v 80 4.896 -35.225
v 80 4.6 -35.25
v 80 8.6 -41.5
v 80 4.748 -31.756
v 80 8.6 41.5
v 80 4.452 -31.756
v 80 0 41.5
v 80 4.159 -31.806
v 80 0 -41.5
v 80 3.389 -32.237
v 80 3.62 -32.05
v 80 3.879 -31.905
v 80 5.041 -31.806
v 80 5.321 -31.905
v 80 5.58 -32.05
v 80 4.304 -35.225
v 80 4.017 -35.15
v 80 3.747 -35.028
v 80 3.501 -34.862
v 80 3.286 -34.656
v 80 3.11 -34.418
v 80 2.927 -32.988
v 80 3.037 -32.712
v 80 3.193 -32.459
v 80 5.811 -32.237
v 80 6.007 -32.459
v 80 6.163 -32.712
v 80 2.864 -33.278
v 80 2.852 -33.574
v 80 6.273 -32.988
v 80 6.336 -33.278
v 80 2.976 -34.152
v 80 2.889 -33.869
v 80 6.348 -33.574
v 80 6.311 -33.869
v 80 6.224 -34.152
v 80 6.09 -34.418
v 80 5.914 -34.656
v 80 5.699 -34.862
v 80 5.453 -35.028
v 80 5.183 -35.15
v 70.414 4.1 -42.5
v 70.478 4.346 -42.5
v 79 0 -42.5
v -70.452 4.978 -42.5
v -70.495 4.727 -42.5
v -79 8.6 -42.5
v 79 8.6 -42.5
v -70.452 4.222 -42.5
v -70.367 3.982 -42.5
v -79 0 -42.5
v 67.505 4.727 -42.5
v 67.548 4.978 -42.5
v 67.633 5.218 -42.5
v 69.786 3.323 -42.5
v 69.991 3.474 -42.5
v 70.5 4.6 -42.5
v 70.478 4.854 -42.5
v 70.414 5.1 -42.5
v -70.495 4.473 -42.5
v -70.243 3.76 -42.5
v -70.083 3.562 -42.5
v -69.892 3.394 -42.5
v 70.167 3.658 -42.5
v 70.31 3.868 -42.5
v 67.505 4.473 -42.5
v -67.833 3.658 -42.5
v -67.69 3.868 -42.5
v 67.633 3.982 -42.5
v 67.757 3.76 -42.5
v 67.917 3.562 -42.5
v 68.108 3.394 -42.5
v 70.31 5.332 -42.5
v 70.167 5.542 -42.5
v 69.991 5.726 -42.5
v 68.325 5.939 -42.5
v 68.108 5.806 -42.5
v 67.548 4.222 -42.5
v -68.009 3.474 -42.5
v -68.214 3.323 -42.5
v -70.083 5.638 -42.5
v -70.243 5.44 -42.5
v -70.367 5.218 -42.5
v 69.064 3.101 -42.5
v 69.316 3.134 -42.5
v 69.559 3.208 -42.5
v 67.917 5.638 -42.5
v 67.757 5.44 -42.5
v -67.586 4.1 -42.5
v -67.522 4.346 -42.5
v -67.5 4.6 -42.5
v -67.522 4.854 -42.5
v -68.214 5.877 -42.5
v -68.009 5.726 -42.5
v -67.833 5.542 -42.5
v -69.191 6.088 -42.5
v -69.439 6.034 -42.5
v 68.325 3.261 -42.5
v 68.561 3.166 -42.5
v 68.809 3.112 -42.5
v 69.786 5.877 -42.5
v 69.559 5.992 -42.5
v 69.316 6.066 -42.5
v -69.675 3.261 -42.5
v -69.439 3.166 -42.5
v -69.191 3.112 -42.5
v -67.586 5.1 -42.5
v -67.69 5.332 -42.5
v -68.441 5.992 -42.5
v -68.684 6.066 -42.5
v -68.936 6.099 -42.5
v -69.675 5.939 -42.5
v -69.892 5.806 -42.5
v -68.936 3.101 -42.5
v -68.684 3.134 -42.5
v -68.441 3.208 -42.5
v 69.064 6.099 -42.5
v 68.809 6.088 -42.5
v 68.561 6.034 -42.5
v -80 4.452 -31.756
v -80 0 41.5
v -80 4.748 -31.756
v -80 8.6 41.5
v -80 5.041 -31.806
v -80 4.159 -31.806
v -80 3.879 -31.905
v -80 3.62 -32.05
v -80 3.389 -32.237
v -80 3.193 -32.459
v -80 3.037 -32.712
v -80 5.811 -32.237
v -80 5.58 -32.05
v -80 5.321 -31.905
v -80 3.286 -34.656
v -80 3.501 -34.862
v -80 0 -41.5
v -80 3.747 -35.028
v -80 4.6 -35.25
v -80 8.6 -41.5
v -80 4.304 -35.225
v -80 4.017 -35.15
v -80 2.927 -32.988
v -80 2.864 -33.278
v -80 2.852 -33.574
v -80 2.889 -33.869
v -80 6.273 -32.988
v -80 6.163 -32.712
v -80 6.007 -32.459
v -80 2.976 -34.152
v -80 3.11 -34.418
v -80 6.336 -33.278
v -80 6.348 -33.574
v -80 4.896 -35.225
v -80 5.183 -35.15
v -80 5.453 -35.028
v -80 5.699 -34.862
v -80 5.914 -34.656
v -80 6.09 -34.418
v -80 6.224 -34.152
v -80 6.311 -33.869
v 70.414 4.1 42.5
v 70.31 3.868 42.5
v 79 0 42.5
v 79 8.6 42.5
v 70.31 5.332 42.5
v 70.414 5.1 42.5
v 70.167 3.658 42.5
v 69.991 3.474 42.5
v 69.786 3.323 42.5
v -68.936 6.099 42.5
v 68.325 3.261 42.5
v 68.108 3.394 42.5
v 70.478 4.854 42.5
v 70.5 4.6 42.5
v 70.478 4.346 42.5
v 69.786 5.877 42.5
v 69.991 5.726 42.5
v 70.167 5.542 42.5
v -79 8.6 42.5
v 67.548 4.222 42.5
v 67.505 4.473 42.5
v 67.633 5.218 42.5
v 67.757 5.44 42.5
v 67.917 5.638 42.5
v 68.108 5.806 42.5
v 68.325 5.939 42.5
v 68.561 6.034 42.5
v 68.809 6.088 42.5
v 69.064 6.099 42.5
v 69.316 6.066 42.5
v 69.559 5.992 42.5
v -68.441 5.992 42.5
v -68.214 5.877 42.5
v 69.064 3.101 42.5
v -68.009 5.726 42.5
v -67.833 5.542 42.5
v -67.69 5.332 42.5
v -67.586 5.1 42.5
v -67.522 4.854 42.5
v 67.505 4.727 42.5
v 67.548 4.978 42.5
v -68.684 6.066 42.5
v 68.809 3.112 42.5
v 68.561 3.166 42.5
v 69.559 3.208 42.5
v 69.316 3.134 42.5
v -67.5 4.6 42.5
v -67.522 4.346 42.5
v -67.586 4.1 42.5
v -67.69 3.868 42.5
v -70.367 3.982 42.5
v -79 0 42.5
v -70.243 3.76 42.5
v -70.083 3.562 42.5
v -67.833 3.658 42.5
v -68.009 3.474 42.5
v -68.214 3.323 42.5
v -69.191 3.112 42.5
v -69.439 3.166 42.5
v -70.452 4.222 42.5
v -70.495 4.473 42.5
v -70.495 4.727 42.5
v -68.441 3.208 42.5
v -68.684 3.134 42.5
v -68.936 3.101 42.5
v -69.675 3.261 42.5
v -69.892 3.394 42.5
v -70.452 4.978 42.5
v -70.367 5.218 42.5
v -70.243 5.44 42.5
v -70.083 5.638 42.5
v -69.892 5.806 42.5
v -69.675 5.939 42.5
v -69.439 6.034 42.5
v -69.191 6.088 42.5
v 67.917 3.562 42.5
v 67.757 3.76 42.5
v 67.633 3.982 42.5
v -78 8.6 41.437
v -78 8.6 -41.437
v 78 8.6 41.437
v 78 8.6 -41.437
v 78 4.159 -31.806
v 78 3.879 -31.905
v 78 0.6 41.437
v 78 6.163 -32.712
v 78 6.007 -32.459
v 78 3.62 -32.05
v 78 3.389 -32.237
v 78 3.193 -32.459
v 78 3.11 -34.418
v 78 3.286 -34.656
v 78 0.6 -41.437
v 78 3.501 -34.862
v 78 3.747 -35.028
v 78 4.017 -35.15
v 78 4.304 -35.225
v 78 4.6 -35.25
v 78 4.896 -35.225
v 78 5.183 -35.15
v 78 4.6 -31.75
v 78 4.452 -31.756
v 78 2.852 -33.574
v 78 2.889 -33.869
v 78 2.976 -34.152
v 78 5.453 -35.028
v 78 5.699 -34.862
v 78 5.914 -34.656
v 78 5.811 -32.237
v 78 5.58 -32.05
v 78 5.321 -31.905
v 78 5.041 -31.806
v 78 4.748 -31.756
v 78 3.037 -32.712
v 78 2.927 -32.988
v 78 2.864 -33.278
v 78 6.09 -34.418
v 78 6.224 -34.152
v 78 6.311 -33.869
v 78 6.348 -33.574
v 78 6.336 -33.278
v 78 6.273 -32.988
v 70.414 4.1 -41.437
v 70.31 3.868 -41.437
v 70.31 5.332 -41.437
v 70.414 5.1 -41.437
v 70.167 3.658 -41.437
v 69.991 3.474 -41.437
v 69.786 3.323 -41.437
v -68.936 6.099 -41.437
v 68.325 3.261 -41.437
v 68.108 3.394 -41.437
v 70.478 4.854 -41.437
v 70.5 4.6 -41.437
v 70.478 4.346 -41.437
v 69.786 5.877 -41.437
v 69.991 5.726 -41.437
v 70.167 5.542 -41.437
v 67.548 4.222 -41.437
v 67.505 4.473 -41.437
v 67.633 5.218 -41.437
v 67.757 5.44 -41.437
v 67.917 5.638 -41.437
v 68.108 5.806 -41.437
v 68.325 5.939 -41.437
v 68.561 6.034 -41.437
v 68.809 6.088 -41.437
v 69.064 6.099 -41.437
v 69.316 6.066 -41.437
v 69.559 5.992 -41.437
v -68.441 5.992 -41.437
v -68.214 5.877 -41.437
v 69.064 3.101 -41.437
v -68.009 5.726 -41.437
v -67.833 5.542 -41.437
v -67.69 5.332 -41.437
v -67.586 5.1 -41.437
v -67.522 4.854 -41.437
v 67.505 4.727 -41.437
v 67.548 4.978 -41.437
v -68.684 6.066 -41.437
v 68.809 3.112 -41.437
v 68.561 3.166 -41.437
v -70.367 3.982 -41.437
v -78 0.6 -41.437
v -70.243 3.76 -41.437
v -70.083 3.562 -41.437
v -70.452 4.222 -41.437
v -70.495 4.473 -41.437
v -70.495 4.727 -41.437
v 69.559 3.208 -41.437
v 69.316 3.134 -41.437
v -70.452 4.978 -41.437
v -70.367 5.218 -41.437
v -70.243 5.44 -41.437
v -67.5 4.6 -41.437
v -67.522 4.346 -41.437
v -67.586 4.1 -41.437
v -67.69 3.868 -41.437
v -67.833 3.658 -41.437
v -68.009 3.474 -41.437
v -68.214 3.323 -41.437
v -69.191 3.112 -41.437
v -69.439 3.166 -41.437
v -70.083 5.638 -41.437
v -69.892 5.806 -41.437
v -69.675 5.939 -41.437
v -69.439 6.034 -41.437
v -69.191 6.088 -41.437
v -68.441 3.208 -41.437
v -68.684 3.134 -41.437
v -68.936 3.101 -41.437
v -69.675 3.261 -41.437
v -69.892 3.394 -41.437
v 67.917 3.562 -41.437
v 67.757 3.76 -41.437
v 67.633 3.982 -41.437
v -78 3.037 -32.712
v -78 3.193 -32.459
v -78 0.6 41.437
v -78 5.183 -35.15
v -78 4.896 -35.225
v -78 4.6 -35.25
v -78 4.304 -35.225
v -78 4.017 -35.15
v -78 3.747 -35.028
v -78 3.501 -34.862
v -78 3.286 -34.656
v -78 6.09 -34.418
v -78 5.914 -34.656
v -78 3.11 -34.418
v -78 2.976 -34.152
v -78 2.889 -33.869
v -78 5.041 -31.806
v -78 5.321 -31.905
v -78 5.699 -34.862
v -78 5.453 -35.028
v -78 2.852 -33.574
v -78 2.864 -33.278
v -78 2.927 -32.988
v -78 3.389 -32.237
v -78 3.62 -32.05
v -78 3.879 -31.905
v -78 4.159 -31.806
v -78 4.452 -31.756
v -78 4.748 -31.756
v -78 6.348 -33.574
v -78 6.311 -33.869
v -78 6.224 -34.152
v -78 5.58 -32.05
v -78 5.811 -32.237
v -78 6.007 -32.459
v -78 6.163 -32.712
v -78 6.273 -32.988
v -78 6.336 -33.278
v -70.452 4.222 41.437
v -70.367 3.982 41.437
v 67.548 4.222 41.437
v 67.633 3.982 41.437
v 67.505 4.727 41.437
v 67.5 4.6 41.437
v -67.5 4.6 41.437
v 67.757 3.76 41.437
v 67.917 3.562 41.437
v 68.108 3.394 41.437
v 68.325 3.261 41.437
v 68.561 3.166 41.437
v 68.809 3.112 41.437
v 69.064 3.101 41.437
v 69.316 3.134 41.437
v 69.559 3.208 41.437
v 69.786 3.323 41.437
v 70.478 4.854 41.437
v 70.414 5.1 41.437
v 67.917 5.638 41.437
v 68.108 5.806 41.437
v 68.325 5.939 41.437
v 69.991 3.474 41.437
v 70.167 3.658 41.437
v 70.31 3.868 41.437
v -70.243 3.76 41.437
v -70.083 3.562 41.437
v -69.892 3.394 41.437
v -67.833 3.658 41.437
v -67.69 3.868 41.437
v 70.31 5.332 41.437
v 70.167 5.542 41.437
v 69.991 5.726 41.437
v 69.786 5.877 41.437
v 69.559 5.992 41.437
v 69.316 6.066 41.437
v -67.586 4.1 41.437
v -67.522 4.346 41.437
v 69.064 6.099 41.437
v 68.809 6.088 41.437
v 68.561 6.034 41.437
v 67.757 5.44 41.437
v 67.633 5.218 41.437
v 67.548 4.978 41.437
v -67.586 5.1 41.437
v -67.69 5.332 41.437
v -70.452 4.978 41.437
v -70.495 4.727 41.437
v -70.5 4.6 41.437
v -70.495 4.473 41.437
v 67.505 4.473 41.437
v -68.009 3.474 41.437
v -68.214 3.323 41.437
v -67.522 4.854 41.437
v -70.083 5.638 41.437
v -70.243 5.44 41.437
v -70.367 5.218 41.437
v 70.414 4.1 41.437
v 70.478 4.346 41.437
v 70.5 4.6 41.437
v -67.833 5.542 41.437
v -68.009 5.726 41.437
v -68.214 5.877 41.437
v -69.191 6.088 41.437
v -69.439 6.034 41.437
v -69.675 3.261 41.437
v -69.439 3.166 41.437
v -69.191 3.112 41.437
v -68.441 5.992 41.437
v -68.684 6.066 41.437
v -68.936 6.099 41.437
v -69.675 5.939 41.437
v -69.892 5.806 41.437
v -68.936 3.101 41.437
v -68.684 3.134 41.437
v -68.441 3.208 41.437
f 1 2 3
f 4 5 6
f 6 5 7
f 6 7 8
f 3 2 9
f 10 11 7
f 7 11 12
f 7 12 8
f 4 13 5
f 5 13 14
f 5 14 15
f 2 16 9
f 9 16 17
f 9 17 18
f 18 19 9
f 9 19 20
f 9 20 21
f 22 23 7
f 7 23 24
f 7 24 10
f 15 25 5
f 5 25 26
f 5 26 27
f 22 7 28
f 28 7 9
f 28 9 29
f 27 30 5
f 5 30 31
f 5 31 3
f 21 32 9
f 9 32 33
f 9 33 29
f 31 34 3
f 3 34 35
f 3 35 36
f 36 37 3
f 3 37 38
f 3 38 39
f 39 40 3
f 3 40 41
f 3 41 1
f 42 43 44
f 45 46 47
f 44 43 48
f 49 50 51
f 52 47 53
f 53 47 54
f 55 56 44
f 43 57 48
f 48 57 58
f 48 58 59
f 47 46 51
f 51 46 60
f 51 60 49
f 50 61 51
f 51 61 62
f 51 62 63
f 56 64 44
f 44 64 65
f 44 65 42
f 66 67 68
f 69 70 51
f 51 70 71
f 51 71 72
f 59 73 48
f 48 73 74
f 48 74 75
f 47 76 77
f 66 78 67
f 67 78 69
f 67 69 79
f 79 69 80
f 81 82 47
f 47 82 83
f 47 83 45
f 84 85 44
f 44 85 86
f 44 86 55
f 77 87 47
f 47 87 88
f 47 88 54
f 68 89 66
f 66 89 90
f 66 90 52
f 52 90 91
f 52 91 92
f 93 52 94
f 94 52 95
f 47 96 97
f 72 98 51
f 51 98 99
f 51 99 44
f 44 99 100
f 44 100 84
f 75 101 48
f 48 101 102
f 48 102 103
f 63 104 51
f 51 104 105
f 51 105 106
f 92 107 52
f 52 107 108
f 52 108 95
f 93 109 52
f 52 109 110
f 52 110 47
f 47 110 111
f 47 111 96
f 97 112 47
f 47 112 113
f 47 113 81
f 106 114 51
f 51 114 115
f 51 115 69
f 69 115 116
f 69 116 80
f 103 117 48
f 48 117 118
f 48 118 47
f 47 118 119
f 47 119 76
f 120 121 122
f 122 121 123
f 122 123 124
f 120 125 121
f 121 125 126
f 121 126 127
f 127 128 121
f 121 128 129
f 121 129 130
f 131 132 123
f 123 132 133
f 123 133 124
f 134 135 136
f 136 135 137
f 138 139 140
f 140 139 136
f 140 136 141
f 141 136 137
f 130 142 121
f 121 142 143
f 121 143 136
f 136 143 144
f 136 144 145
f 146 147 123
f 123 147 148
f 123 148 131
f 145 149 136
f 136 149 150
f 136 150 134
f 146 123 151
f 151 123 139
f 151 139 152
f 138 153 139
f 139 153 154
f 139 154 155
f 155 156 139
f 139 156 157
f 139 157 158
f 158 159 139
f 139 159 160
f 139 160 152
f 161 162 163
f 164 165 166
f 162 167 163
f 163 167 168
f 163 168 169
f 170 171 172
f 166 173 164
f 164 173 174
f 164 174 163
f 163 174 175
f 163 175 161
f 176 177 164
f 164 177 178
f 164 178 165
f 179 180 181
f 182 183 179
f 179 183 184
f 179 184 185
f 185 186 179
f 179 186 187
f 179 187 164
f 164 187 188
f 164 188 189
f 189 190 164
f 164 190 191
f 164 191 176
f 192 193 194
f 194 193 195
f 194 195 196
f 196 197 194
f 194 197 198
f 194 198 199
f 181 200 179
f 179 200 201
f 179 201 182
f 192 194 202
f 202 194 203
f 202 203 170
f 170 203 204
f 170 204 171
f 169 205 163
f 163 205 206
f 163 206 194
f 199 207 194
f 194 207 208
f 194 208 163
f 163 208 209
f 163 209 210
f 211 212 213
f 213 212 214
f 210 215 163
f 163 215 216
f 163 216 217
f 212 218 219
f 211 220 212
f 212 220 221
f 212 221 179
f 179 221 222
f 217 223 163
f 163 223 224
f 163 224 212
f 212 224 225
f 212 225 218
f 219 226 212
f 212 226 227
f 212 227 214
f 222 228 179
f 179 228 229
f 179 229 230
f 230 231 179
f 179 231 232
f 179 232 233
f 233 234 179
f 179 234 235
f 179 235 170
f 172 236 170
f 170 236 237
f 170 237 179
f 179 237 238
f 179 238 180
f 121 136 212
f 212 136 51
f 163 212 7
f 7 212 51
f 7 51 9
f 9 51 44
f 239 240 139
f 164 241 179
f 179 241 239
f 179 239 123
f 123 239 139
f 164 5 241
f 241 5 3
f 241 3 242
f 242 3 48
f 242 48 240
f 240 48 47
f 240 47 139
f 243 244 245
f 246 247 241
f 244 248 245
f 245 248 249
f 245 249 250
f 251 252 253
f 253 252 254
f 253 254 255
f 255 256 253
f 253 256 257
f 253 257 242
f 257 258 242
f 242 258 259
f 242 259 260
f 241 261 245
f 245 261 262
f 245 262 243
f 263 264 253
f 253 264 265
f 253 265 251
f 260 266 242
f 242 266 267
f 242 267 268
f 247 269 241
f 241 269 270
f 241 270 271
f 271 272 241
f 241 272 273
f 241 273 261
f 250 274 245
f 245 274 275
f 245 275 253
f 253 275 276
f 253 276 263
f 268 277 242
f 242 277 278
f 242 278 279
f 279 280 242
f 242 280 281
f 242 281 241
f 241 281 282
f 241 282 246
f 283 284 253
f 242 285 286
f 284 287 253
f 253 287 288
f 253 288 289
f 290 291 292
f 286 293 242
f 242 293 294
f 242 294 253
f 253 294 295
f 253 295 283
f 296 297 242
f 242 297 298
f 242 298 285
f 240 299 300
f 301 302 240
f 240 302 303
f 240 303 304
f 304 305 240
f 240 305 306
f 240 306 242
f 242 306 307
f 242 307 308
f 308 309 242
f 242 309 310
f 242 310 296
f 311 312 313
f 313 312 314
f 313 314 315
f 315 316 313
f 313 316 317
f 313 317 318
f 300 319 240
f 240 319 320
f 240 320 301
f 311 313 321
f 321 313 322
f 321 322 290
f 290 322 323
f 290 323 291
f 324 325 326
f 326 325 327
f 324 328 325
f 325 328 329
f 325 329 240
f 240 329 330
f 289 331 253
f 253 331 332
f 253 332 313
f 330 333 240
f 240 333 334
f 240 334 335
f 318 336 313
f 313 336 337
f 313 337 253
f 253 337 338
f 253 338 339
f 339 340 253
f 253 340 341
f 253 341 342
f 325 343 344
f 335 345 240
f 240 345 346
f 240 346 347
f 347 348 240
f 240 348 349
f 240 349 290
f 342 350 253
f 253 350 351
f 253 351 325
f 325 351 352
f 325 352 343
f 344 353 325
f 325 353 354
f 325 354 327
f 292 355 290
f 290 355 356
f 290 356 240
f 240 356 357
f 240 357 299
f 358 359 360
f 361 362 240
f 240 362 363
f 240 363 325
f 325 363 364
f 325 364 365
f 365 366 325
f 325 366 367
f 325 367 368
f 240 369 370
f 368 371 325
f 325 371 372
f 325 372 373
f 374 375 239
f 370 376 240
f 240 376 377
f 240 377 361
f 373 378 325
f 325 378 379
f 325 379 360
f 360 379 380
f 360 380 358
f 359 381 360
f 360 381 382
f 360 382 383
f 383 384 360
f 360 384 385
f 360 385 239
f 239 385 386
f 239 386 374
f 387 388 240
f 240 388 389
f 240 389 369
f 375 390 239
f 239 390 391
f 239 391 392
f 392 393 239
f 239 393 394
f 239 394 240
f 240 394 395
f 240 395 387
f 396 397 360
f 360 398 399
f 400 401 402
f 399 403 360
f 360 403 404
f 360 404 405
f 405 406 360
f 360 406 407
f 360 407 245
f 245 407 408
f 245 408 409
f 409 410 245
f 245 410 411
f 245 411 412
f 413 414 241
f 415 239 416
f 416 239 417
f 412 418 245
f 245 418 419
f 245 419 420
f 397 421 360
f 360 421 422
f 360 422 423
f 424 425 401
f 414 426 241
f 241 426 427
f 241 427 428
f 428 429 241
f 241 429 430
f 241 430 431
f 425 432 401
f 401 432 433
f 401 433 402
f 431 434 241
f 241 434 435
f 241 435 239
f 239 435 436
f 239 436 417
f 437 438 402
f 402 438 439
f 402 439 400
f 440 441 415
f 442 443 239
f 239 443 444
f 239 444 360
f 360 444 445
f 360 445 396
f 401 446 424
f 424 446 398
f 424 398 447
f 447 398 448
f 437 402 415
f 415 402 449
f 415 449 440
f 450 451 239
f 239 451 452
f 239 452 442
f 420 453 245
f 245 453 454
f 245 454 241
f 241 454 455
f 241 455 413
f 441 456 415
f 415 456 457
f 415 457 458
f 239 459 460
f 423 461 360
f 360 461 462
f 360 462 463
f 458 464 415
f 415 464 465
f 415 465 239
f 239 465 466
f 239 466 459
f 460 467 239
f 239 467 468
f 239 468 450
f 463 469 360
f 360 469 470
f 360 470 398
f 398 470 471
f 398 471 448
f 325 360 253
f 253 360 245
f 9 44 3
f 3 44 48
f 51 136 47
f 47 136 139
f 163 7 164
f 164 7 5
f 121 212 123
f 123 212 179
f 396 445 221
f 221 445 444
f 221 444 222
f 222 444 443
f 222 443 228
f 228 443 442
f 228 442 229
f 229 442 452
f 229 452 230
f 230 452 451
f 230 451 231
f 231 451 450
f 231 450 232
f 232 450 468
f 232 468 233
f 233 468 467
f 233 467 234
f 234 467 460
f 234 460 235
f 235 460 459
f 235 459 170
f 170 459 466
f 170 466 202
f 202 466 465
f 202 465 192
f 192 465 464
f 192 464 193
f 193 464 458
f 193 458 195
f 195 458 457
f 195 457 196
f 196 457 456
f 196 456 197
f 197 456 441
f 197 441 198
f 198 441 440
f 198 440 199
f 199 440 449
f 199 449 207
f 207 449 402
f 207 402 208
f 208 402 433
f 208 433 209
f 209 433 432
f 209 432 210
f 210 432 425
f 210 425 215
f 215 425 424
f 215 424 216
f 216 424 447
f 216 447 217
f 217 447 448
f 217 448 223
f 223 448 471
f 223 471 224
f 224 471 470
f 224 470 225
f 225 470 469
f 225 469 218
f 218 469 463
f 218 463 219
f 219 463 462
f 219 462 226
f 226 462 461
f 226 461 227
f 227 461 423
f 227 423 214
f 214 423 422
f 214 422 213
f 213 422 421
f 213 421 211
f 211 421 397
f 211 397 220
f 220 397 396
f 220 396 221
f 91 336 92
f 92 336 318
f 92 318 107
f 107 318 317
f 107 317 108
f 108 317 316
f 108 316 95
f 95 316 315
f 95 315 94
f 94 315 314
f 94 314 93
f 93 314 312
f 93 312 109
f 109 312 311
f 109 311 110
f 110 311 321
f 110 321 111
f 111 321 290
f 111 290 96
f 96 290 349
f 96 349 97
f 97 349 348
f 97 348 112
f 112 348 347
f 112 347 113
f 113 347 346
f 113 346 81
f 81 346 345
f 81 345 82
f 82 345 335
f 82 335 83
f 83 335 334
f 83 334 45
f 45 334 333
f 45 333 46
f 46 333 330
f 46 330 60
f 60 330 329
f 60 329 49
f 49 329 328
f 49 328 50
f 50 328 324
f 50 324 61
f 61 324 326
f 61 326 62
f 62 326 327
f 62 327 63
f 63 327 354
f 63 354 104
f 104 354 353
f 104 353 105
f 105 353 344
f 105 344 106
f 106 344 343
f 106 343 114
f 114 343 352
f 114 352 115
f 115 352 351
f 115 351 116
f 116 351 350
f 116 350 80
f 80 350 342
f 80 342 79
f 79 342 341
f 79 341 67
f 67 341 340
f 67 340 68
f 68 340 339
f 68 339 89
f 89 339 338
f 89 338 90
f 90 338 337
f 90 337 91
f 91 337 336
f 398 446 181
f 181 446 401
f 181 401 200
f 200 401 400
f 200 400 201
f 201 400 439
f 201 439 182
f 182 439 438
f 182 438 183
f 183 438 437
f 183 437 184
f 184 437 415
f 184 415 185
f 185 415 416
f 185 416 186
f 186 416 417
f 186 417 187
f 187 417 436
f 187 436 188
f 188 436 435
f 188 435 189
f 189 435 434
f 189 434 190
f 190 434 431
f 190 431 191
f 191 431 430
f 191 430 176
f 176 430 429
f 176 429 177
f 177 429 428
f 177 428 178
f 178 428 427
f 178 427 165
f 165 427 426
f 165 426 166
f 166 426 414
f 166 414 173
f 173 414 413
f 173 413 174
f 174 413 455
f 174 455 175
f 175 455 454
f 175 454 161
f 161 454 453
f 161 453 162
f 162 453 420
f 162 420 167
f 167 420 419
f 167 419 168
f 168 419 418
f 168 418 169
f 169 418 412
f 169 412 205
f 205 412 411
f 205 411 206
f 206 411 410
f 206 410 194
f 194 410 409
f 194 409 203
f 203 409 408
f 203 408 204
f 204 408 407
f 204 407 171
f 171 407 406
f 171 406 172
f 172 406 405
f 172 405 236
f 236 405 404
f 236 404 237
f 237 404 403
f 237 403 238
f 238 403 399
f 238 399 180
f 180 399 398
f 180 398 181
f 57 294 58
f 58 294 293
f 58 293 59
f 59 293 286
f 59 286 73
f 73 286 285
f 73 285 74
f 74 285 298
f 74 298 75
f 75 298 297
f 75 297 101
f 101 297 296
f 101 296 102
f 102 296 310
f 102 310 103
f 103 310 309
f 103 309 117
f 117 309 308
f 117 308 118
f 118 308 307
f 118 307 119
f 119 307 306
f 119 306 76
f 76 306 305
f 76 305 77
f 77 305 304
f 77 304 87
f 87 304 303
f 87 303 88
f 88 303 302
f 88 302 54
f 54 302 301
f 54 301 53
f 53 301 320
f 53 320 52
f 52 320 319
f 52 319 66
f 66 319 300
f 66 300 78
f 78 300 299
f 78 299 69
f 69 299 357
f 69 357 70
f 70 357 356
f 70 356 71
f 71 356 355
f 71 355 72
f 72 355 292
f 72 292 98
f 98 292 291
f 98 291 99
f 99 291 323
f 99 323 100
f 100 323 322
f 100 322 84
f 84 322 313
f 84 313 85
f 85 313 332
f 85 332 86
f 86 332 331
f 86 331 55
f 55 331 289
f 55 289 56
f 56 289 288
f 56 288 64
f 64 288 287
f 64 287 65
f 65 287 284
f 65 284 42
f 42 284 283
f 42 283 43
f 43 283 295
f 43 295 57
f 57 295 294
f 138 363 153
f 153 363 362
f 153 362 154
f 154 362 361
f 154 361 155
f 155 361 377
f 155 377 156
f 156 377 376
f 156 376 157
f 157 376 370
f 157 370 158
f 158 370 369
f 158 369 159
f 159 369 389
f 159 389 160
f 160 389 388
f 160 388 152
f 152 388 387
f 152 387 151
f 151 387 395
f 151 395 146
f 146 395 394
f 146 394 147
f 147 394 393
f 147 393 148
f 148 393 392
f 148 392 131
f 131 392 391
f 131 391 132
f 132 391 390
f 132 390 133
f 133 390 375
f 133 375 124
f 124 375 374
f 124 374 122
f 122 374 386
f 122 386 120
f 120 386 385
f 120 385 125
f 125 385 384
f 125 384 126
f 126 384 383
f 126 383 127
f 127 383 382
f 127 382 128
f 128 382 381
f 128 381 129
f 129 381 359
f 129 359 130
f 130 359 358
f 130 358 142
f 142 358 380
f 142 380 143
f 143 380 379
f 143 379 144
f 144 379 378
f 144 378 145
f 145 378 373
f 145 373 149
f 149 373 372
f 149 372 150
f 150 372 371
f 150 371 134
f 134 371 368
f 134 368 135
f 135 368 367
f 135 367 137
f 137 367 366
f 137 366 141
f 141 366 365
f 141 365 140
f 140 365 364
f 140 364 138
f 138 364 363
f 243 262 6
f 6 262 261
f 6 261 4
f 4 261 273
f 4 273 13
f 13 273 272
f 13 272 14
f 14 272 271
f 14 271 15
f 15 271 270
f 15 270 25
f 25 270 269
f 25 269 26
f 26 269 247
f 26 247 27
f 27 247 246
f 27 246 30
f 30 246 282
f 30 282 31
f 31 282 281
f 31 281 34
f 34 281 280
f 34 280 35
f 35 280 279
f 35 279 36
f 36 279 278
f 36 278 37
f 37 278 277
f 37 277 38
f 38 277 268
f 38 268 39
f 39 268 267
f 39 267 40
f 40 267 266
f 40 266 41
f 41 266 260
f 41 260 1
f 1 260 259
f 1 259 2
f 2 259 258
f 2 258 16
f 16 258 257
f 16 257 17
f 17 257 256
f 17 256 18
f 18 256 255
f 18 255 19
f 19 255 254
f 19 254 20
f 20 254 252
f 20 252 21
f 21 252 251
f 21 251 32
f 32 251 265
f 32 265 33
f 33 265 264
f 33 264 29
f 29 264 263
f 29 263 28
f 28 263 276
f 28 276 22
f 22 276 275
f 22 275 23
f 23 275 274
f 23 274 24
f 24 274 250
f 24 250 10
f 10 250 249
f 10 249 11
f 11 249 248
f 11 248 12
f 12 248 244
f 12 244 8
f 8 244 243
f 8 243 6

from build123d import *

# Parameters (mm, degrees)
SKETCH1_W           = 160
SKETCH1_H           = 85
BOSS_EXTRUDE1_DEPTH = 0.6
SKETCH2_W           = 160
SKETCH2_H           = 85
SKETCH2_W_2         = 156
SKETCH2_H_2         = 82.875
BOSS_EXTRUDE2_DEPTH = 8
CHAMFER1_SIZE       = 1
SKETCH3_R           = 1.5
CUT_EXTRUDE1_DEPTH  = 98
SKETCH4_R           = 1.75
CUT_EXTRUDE2_DEPTH  = 1000


with BuildPart() as part:
    # Sketch1 → Boss-Extrude1 (new body)
    with BuildSketch(Plane(origin=(0, 0, 0), x_dir=(1, 0, 0), z_dir=(0, 1, 0))):
        Rectangle(SKETCH1_W, SKETCH1_H)
    extrude(amount=BOSS_EXTRUDE1_DEPTH)

    # Sketch2 → Boss-Extrude2 (add)
    with BuildSketch(Plane(origin=(0, 0.6, 0), x_dir=(1, 0, 0), z_dir=(0, 1, 0))):
        Rectangle(SKETCH2_W, SKETCH2_H)
        Rectangle(SKETCH2_W_2, SKETCH2_H_2, mode=Mode.SUBTRACT)
    extrude(amount=BOSS_EXTRUDE2_DEPTH)

    # Chamfer1
    chamfer1_edges = [part.edges().sort_by_distance(p)[0] for p in [
        (80, 4.3, 42.5),
        (-80, 4.3, 42.5),
        (-80, 4.3, -42.5),
        (80, 4.3, -42.5),
    ]]
    chamfer(chamfer1_edges, length=CHAMFER1_SIZE)

    # Sketch3 → Cut-Extrude1 (cut)
    with BuildSketch(Plane.XY.offset(42.5)):
        with Locations((-69, 4.6)):
            Circle(SKETCH3_R)
        with Locations((69, 4.6)):
            Circle(SKETCH3_R)
    extrude(amount=-CUT_EXTRUDE1_DEPTH, mode=Mode.SUBTRACT)

    # Sketch4 → Cut-Extrude2 (cut)
    with BuildSketch(Plane(origin=(80, 0, 0), x_dir=(0, 0, -1), z_dir=(1, 0, 0))):
        with Locations((33.5, 4.6)):
            Circle(SKETCH4_R)
    extrude(amount=-CUT_EXTRUDE2_DEPTH, mode=Mode.SUBTRACT)


solid = part.part
